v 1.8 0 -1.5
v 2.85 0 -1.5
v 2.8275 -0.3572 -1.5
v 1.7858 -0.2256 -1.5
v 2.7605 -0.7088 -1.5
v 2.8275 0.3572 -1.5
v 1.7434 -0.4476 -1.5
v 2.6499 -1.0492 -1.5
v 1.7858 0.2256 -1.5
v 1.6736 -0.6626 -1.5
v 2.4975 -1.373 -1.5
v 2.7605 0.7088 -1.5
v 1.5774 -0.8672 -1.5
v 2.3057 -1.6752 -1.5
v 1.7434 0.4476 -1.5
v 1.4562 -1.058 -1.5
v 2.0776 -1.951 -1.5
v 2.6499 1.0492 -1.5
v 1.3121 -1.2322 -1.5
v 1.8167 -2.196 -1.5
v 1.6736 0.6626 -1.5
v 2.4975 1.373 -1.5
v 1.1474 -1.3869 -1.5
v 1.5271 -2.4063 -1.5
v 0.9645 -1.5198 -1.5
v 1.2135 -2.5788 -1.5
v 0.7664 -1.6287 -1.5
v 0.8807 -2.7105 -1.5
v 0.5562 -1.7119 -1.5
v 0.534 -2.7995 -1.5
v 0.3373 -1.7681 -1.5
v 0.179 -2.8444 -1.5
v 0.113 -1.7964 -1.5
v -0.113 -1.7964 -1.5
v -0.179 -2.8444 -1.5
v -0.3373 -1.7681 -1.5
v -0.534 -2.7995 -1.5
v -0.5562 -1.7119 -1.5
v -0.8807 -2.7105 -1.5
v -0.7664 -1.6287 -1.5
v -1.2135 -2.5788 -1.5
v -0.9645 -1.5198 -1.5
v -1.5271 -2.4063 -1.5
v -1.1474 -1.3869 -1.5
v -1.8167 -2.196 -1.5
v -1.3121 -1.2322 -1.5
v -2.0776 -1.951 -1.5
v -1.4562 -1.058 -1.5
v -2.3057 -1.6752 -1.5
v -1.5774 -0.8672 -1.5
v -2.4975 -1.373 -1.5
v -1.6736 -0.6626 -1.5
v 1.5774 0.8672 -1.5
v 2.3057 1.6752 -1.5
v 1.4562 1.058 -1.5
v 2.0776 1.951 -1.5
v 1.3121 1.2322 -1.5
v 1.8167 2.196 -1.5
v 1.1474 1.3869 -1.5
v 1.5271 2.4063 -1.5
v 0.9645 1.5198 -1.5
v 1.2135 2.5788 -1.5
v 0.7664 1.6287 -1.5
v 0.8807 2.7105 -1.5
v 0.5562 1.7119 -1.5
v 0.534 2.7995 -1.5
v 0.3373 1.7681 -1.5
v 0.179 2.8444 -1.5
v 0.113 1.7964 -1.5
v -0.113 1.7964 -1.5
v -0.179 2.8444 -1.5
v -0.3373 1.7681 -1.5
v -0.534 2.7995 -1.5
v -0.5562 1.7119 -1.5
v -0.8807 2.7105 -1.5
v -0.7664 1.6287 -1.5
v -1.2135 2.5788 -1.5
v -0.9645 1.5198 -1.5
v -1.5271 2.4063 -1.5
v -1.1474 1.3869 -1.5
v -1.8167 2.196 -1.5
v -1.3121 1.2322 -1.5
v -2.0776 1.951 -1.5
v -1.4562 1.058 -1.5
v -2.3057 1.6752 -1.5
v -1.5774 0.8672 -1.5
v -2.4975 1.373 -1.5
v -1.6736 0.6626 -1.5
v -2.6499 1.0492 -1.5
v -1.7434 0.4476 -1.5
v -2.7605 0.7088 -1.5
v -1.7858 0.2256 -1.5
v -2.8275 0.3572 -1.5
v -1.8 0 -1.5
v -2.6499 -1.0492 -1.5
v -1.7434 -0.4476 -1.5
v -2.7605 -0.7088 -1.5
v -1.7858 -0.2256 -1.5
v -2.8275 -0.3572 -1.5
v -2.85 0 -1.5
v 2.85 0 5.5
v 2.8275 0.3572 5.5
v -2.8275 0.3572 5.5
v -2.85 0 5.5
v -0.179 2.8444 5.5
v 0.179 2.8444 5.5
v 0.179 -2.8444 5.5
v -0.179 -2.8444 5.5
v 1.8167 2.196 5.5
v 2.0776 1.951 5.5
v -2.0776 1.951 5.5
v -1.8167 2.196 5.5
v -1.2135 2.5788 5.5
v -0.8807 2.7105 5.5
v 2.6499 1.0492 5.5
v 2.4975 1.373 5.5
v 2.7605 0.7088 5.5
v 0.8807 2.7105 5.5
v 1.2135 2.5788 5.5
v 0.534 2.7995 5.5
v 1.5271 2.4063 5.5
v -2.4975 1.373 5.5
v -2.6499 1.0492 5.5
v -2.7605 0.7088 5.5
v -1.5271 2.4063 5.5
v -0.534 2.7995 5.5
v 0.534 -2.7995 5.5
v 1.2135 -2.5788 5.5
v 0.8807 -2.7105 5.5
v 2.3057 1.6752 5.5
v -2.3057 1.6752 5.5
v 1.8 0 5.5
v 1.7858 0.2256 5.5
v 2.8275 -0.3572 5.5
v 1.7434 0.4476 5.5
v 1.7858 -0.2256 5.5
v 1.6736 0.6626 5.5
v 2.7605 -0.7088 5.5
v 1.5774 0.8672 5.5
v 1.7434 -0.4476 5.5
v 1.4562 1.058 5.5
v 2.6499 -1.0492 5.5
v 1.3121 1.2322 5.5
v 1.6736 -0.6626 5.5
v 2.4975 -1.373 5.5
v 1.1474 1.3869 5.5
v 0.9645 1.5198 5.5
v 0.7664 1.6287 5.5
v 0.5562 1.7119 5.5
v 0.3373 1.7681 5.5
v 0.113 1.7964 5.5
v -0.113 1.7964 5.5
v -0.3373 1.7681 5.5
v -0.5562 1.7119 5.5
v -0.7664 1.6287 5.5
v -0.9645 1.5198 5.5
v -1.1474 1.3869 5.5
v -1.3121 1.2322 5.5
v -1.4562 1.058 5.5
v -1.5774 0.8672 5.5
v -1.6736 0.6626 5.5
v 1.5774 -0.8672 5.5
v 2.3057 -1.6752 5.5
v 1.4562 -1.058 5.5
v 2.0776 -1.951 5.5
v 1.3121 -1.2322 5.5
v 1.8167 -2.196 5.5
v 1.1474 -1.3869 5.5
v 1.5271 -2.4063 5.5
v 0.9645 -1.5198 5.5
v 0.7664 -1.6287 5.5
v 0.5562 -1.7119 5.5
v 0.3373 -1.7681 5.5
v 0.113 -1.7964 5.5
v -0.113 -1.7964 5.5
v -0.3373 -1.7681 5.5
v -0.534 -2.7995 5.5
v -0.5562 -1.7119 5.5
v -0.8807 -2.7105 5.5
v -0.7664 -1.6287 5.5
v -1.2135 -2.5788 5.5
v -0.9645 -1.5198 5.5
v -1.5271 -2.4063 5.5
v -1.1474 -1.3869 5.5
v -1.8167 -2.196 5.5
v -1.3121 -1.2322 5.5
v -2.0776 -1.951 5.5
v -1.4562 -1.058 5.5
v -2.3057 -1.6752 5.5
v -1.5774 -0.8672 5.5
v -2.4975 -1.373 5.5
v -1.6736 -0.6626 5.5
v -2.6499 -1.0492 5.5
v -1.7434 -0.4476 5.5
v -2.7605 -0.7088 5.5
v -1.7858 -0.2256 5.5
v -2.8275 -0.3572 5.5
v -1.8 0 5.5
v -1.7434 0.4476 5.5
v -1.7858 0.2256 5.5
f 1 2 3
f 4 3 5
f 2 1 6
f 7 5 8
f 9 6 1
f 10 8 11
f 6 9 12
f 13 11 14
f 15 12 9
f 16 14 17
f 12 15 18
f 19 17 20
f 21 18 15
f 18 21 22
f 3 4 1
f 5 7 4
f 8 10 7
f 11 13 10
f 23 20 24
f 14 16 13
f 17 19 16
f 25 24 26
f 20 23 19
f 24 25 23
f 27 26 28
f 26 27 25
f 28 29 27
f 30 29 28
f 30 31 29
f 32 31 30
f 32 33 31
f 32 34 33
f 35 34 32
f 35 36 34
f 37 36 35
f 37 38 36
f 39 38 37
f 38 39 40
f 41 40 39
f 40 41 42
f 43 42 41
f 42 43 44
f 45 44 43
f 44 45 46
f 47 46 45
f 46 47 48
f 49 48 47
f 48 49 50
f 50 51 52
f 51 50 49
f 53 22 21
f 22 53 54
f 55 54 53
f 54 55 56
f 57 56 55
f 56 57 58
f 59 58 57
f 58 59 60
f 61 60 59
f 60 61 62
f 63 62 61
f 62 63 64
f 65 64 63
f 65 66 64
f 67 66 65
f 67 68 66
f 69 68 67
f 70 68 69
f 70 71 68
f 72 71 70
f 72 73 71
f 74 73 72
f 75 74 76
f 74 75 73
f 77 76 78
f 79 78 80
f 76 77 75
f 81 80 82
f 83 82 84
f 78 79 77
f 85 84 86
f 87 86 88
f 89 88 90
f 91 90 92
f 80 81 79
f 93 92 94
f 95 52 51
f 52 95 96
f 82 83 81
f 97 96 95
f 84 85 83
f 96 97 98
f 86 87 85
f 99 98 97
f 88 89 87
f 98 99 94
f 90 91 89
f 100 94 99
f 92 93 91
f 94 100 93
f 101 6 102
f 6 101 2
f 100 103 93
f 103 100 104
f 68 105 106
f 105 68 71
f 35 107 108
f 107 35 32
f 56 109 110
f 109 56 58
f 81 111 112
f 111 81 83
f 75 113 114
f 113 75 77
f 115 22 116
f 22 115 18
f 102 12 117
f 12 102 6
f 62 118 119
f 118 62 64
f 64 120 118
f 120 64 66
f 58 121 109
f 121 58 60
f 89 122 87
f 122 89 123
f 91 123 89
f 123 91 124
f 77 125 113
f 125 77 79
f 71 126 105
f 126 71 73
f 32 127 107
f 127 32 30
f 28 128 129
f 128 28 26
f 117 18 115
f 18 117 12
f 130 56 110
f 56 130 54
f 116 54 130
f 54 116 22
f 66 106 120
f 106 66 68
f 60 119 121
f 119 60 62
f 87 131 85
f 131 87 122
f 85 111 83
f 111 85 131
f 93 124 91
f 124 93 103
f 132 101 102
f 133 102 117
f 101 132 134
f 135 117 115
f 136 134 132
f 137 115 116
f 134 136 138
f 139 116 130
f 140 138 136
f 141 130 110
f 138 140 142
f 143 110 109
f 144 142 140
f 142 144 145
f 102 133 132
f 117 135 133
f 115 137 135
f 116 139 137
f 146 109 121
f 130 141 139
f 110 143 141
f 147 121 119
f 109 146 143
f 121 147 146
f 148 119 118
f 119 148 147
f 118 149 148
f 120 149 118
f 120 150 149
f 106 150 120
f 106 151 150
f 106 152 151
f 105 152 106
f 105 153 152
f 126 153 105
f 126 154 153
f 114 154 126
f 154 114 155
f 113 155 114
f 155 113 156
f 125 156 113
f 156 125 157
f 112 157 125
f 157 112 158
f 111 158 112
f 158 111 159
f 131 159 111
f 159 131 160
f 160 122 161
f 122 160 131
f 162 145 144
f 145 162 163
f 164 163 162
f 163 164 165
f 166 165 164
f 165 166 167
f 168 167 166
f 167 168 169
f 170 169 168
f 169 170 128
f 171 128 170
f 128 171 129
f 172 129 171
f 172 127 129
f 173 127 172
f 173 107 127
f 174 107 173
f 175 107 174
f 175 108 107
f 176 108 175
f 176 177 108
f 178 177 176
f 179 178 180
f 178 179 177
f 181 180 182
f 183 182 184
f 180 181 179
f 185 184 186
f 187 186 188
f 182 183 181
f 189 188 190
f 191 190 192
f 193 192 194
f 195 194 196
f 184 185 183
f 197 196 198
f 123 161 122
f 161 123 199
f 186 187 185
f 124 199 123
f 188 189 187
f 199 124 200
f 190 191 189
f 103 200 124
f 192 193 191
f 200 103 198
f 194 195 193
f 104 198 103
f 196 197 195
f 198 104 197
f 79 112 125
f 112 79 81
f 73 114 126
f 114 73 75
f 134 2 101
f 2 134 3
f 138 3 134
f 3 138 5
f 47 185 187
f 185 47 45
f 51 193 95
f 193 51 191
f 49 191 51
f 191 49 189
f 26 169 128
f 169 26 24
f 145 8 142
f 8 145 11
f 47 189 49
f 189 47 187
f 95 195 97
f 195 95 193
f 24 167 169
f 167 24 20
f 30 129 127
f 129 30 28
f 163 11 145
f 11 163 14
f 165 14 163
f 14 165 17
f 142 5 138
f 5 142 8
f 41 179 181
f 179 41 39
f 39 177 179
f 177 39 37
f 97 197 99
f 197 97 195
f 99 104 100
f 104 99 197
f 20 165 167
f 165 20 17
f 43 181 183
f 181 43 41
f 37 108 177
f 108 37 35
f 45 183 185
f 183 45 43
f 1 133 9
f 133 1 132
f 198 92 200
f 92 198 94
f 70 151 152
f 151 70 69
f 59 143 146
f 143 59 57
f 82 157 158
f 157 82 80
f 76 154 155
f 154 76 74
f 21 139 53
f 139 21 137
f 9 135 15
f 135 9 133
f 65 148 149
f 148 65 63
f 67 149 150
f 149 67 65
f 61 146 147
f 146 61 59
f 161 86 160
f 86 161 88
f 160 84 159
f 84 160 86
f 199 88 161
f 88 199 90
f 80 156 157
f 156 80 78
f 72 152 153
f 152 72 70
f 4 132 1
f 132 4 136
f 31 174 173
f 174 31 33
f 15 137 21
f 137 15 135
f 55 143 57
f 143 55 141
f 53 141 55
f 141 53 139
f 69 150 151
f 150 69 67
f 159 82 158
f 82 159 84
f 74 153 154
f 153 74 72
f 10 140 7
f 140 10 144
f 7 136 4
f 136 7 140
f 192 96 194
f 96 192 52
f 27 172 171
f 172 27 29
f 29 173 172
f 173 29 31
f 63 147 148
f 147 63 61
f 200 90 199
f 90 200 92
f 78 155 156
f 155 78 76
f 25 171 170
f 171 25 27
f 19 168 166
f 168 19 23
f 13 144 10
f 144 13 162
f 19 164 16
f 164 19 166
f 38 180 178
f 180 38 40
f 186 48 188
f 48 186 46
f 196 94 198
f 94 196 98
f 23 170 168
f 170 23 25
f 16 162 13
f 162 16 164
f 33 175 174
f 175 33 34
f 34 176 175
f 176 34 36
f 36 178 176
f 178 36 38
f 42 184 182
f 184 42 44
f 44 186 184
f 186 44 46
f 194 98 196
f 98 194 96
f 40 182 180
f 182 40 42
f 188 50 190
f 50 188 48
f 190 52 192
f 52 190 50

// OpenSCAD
$fn = 50;


difference() {
	union() {
		translate(v = [0, 0, -1.5000000000]) {
			rotate(a = [0, 0, 0]) {
				cylinder(h = 3, r = 1.0000000000);
			}
		}
		translate(v = [0, 0, -1.5000000000]) {
			rotate(a = [0, 0, 0]) {
				cylinder(h = 7, r = 2.8500000000);
			}
		}
	}
	union() {
		translate(v = [0, 0, -125.0000000000]) {
			rotate(a = [0, 0, 0]) {
				cylinder(h = 250, r = 1.8000000000);
			}
		}
	}
}
